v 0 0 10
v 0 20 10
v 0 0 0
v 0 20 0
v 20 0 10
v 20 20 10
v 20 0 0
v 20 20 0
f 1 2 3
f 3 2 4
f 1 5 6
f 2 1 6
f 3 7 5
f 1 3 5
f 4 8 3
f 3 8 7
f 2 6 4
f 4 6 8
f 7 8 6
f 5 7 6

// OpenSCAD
// calibration cube

sides = 20;
height = 10;

cube(size = [sides, sides, height]);
